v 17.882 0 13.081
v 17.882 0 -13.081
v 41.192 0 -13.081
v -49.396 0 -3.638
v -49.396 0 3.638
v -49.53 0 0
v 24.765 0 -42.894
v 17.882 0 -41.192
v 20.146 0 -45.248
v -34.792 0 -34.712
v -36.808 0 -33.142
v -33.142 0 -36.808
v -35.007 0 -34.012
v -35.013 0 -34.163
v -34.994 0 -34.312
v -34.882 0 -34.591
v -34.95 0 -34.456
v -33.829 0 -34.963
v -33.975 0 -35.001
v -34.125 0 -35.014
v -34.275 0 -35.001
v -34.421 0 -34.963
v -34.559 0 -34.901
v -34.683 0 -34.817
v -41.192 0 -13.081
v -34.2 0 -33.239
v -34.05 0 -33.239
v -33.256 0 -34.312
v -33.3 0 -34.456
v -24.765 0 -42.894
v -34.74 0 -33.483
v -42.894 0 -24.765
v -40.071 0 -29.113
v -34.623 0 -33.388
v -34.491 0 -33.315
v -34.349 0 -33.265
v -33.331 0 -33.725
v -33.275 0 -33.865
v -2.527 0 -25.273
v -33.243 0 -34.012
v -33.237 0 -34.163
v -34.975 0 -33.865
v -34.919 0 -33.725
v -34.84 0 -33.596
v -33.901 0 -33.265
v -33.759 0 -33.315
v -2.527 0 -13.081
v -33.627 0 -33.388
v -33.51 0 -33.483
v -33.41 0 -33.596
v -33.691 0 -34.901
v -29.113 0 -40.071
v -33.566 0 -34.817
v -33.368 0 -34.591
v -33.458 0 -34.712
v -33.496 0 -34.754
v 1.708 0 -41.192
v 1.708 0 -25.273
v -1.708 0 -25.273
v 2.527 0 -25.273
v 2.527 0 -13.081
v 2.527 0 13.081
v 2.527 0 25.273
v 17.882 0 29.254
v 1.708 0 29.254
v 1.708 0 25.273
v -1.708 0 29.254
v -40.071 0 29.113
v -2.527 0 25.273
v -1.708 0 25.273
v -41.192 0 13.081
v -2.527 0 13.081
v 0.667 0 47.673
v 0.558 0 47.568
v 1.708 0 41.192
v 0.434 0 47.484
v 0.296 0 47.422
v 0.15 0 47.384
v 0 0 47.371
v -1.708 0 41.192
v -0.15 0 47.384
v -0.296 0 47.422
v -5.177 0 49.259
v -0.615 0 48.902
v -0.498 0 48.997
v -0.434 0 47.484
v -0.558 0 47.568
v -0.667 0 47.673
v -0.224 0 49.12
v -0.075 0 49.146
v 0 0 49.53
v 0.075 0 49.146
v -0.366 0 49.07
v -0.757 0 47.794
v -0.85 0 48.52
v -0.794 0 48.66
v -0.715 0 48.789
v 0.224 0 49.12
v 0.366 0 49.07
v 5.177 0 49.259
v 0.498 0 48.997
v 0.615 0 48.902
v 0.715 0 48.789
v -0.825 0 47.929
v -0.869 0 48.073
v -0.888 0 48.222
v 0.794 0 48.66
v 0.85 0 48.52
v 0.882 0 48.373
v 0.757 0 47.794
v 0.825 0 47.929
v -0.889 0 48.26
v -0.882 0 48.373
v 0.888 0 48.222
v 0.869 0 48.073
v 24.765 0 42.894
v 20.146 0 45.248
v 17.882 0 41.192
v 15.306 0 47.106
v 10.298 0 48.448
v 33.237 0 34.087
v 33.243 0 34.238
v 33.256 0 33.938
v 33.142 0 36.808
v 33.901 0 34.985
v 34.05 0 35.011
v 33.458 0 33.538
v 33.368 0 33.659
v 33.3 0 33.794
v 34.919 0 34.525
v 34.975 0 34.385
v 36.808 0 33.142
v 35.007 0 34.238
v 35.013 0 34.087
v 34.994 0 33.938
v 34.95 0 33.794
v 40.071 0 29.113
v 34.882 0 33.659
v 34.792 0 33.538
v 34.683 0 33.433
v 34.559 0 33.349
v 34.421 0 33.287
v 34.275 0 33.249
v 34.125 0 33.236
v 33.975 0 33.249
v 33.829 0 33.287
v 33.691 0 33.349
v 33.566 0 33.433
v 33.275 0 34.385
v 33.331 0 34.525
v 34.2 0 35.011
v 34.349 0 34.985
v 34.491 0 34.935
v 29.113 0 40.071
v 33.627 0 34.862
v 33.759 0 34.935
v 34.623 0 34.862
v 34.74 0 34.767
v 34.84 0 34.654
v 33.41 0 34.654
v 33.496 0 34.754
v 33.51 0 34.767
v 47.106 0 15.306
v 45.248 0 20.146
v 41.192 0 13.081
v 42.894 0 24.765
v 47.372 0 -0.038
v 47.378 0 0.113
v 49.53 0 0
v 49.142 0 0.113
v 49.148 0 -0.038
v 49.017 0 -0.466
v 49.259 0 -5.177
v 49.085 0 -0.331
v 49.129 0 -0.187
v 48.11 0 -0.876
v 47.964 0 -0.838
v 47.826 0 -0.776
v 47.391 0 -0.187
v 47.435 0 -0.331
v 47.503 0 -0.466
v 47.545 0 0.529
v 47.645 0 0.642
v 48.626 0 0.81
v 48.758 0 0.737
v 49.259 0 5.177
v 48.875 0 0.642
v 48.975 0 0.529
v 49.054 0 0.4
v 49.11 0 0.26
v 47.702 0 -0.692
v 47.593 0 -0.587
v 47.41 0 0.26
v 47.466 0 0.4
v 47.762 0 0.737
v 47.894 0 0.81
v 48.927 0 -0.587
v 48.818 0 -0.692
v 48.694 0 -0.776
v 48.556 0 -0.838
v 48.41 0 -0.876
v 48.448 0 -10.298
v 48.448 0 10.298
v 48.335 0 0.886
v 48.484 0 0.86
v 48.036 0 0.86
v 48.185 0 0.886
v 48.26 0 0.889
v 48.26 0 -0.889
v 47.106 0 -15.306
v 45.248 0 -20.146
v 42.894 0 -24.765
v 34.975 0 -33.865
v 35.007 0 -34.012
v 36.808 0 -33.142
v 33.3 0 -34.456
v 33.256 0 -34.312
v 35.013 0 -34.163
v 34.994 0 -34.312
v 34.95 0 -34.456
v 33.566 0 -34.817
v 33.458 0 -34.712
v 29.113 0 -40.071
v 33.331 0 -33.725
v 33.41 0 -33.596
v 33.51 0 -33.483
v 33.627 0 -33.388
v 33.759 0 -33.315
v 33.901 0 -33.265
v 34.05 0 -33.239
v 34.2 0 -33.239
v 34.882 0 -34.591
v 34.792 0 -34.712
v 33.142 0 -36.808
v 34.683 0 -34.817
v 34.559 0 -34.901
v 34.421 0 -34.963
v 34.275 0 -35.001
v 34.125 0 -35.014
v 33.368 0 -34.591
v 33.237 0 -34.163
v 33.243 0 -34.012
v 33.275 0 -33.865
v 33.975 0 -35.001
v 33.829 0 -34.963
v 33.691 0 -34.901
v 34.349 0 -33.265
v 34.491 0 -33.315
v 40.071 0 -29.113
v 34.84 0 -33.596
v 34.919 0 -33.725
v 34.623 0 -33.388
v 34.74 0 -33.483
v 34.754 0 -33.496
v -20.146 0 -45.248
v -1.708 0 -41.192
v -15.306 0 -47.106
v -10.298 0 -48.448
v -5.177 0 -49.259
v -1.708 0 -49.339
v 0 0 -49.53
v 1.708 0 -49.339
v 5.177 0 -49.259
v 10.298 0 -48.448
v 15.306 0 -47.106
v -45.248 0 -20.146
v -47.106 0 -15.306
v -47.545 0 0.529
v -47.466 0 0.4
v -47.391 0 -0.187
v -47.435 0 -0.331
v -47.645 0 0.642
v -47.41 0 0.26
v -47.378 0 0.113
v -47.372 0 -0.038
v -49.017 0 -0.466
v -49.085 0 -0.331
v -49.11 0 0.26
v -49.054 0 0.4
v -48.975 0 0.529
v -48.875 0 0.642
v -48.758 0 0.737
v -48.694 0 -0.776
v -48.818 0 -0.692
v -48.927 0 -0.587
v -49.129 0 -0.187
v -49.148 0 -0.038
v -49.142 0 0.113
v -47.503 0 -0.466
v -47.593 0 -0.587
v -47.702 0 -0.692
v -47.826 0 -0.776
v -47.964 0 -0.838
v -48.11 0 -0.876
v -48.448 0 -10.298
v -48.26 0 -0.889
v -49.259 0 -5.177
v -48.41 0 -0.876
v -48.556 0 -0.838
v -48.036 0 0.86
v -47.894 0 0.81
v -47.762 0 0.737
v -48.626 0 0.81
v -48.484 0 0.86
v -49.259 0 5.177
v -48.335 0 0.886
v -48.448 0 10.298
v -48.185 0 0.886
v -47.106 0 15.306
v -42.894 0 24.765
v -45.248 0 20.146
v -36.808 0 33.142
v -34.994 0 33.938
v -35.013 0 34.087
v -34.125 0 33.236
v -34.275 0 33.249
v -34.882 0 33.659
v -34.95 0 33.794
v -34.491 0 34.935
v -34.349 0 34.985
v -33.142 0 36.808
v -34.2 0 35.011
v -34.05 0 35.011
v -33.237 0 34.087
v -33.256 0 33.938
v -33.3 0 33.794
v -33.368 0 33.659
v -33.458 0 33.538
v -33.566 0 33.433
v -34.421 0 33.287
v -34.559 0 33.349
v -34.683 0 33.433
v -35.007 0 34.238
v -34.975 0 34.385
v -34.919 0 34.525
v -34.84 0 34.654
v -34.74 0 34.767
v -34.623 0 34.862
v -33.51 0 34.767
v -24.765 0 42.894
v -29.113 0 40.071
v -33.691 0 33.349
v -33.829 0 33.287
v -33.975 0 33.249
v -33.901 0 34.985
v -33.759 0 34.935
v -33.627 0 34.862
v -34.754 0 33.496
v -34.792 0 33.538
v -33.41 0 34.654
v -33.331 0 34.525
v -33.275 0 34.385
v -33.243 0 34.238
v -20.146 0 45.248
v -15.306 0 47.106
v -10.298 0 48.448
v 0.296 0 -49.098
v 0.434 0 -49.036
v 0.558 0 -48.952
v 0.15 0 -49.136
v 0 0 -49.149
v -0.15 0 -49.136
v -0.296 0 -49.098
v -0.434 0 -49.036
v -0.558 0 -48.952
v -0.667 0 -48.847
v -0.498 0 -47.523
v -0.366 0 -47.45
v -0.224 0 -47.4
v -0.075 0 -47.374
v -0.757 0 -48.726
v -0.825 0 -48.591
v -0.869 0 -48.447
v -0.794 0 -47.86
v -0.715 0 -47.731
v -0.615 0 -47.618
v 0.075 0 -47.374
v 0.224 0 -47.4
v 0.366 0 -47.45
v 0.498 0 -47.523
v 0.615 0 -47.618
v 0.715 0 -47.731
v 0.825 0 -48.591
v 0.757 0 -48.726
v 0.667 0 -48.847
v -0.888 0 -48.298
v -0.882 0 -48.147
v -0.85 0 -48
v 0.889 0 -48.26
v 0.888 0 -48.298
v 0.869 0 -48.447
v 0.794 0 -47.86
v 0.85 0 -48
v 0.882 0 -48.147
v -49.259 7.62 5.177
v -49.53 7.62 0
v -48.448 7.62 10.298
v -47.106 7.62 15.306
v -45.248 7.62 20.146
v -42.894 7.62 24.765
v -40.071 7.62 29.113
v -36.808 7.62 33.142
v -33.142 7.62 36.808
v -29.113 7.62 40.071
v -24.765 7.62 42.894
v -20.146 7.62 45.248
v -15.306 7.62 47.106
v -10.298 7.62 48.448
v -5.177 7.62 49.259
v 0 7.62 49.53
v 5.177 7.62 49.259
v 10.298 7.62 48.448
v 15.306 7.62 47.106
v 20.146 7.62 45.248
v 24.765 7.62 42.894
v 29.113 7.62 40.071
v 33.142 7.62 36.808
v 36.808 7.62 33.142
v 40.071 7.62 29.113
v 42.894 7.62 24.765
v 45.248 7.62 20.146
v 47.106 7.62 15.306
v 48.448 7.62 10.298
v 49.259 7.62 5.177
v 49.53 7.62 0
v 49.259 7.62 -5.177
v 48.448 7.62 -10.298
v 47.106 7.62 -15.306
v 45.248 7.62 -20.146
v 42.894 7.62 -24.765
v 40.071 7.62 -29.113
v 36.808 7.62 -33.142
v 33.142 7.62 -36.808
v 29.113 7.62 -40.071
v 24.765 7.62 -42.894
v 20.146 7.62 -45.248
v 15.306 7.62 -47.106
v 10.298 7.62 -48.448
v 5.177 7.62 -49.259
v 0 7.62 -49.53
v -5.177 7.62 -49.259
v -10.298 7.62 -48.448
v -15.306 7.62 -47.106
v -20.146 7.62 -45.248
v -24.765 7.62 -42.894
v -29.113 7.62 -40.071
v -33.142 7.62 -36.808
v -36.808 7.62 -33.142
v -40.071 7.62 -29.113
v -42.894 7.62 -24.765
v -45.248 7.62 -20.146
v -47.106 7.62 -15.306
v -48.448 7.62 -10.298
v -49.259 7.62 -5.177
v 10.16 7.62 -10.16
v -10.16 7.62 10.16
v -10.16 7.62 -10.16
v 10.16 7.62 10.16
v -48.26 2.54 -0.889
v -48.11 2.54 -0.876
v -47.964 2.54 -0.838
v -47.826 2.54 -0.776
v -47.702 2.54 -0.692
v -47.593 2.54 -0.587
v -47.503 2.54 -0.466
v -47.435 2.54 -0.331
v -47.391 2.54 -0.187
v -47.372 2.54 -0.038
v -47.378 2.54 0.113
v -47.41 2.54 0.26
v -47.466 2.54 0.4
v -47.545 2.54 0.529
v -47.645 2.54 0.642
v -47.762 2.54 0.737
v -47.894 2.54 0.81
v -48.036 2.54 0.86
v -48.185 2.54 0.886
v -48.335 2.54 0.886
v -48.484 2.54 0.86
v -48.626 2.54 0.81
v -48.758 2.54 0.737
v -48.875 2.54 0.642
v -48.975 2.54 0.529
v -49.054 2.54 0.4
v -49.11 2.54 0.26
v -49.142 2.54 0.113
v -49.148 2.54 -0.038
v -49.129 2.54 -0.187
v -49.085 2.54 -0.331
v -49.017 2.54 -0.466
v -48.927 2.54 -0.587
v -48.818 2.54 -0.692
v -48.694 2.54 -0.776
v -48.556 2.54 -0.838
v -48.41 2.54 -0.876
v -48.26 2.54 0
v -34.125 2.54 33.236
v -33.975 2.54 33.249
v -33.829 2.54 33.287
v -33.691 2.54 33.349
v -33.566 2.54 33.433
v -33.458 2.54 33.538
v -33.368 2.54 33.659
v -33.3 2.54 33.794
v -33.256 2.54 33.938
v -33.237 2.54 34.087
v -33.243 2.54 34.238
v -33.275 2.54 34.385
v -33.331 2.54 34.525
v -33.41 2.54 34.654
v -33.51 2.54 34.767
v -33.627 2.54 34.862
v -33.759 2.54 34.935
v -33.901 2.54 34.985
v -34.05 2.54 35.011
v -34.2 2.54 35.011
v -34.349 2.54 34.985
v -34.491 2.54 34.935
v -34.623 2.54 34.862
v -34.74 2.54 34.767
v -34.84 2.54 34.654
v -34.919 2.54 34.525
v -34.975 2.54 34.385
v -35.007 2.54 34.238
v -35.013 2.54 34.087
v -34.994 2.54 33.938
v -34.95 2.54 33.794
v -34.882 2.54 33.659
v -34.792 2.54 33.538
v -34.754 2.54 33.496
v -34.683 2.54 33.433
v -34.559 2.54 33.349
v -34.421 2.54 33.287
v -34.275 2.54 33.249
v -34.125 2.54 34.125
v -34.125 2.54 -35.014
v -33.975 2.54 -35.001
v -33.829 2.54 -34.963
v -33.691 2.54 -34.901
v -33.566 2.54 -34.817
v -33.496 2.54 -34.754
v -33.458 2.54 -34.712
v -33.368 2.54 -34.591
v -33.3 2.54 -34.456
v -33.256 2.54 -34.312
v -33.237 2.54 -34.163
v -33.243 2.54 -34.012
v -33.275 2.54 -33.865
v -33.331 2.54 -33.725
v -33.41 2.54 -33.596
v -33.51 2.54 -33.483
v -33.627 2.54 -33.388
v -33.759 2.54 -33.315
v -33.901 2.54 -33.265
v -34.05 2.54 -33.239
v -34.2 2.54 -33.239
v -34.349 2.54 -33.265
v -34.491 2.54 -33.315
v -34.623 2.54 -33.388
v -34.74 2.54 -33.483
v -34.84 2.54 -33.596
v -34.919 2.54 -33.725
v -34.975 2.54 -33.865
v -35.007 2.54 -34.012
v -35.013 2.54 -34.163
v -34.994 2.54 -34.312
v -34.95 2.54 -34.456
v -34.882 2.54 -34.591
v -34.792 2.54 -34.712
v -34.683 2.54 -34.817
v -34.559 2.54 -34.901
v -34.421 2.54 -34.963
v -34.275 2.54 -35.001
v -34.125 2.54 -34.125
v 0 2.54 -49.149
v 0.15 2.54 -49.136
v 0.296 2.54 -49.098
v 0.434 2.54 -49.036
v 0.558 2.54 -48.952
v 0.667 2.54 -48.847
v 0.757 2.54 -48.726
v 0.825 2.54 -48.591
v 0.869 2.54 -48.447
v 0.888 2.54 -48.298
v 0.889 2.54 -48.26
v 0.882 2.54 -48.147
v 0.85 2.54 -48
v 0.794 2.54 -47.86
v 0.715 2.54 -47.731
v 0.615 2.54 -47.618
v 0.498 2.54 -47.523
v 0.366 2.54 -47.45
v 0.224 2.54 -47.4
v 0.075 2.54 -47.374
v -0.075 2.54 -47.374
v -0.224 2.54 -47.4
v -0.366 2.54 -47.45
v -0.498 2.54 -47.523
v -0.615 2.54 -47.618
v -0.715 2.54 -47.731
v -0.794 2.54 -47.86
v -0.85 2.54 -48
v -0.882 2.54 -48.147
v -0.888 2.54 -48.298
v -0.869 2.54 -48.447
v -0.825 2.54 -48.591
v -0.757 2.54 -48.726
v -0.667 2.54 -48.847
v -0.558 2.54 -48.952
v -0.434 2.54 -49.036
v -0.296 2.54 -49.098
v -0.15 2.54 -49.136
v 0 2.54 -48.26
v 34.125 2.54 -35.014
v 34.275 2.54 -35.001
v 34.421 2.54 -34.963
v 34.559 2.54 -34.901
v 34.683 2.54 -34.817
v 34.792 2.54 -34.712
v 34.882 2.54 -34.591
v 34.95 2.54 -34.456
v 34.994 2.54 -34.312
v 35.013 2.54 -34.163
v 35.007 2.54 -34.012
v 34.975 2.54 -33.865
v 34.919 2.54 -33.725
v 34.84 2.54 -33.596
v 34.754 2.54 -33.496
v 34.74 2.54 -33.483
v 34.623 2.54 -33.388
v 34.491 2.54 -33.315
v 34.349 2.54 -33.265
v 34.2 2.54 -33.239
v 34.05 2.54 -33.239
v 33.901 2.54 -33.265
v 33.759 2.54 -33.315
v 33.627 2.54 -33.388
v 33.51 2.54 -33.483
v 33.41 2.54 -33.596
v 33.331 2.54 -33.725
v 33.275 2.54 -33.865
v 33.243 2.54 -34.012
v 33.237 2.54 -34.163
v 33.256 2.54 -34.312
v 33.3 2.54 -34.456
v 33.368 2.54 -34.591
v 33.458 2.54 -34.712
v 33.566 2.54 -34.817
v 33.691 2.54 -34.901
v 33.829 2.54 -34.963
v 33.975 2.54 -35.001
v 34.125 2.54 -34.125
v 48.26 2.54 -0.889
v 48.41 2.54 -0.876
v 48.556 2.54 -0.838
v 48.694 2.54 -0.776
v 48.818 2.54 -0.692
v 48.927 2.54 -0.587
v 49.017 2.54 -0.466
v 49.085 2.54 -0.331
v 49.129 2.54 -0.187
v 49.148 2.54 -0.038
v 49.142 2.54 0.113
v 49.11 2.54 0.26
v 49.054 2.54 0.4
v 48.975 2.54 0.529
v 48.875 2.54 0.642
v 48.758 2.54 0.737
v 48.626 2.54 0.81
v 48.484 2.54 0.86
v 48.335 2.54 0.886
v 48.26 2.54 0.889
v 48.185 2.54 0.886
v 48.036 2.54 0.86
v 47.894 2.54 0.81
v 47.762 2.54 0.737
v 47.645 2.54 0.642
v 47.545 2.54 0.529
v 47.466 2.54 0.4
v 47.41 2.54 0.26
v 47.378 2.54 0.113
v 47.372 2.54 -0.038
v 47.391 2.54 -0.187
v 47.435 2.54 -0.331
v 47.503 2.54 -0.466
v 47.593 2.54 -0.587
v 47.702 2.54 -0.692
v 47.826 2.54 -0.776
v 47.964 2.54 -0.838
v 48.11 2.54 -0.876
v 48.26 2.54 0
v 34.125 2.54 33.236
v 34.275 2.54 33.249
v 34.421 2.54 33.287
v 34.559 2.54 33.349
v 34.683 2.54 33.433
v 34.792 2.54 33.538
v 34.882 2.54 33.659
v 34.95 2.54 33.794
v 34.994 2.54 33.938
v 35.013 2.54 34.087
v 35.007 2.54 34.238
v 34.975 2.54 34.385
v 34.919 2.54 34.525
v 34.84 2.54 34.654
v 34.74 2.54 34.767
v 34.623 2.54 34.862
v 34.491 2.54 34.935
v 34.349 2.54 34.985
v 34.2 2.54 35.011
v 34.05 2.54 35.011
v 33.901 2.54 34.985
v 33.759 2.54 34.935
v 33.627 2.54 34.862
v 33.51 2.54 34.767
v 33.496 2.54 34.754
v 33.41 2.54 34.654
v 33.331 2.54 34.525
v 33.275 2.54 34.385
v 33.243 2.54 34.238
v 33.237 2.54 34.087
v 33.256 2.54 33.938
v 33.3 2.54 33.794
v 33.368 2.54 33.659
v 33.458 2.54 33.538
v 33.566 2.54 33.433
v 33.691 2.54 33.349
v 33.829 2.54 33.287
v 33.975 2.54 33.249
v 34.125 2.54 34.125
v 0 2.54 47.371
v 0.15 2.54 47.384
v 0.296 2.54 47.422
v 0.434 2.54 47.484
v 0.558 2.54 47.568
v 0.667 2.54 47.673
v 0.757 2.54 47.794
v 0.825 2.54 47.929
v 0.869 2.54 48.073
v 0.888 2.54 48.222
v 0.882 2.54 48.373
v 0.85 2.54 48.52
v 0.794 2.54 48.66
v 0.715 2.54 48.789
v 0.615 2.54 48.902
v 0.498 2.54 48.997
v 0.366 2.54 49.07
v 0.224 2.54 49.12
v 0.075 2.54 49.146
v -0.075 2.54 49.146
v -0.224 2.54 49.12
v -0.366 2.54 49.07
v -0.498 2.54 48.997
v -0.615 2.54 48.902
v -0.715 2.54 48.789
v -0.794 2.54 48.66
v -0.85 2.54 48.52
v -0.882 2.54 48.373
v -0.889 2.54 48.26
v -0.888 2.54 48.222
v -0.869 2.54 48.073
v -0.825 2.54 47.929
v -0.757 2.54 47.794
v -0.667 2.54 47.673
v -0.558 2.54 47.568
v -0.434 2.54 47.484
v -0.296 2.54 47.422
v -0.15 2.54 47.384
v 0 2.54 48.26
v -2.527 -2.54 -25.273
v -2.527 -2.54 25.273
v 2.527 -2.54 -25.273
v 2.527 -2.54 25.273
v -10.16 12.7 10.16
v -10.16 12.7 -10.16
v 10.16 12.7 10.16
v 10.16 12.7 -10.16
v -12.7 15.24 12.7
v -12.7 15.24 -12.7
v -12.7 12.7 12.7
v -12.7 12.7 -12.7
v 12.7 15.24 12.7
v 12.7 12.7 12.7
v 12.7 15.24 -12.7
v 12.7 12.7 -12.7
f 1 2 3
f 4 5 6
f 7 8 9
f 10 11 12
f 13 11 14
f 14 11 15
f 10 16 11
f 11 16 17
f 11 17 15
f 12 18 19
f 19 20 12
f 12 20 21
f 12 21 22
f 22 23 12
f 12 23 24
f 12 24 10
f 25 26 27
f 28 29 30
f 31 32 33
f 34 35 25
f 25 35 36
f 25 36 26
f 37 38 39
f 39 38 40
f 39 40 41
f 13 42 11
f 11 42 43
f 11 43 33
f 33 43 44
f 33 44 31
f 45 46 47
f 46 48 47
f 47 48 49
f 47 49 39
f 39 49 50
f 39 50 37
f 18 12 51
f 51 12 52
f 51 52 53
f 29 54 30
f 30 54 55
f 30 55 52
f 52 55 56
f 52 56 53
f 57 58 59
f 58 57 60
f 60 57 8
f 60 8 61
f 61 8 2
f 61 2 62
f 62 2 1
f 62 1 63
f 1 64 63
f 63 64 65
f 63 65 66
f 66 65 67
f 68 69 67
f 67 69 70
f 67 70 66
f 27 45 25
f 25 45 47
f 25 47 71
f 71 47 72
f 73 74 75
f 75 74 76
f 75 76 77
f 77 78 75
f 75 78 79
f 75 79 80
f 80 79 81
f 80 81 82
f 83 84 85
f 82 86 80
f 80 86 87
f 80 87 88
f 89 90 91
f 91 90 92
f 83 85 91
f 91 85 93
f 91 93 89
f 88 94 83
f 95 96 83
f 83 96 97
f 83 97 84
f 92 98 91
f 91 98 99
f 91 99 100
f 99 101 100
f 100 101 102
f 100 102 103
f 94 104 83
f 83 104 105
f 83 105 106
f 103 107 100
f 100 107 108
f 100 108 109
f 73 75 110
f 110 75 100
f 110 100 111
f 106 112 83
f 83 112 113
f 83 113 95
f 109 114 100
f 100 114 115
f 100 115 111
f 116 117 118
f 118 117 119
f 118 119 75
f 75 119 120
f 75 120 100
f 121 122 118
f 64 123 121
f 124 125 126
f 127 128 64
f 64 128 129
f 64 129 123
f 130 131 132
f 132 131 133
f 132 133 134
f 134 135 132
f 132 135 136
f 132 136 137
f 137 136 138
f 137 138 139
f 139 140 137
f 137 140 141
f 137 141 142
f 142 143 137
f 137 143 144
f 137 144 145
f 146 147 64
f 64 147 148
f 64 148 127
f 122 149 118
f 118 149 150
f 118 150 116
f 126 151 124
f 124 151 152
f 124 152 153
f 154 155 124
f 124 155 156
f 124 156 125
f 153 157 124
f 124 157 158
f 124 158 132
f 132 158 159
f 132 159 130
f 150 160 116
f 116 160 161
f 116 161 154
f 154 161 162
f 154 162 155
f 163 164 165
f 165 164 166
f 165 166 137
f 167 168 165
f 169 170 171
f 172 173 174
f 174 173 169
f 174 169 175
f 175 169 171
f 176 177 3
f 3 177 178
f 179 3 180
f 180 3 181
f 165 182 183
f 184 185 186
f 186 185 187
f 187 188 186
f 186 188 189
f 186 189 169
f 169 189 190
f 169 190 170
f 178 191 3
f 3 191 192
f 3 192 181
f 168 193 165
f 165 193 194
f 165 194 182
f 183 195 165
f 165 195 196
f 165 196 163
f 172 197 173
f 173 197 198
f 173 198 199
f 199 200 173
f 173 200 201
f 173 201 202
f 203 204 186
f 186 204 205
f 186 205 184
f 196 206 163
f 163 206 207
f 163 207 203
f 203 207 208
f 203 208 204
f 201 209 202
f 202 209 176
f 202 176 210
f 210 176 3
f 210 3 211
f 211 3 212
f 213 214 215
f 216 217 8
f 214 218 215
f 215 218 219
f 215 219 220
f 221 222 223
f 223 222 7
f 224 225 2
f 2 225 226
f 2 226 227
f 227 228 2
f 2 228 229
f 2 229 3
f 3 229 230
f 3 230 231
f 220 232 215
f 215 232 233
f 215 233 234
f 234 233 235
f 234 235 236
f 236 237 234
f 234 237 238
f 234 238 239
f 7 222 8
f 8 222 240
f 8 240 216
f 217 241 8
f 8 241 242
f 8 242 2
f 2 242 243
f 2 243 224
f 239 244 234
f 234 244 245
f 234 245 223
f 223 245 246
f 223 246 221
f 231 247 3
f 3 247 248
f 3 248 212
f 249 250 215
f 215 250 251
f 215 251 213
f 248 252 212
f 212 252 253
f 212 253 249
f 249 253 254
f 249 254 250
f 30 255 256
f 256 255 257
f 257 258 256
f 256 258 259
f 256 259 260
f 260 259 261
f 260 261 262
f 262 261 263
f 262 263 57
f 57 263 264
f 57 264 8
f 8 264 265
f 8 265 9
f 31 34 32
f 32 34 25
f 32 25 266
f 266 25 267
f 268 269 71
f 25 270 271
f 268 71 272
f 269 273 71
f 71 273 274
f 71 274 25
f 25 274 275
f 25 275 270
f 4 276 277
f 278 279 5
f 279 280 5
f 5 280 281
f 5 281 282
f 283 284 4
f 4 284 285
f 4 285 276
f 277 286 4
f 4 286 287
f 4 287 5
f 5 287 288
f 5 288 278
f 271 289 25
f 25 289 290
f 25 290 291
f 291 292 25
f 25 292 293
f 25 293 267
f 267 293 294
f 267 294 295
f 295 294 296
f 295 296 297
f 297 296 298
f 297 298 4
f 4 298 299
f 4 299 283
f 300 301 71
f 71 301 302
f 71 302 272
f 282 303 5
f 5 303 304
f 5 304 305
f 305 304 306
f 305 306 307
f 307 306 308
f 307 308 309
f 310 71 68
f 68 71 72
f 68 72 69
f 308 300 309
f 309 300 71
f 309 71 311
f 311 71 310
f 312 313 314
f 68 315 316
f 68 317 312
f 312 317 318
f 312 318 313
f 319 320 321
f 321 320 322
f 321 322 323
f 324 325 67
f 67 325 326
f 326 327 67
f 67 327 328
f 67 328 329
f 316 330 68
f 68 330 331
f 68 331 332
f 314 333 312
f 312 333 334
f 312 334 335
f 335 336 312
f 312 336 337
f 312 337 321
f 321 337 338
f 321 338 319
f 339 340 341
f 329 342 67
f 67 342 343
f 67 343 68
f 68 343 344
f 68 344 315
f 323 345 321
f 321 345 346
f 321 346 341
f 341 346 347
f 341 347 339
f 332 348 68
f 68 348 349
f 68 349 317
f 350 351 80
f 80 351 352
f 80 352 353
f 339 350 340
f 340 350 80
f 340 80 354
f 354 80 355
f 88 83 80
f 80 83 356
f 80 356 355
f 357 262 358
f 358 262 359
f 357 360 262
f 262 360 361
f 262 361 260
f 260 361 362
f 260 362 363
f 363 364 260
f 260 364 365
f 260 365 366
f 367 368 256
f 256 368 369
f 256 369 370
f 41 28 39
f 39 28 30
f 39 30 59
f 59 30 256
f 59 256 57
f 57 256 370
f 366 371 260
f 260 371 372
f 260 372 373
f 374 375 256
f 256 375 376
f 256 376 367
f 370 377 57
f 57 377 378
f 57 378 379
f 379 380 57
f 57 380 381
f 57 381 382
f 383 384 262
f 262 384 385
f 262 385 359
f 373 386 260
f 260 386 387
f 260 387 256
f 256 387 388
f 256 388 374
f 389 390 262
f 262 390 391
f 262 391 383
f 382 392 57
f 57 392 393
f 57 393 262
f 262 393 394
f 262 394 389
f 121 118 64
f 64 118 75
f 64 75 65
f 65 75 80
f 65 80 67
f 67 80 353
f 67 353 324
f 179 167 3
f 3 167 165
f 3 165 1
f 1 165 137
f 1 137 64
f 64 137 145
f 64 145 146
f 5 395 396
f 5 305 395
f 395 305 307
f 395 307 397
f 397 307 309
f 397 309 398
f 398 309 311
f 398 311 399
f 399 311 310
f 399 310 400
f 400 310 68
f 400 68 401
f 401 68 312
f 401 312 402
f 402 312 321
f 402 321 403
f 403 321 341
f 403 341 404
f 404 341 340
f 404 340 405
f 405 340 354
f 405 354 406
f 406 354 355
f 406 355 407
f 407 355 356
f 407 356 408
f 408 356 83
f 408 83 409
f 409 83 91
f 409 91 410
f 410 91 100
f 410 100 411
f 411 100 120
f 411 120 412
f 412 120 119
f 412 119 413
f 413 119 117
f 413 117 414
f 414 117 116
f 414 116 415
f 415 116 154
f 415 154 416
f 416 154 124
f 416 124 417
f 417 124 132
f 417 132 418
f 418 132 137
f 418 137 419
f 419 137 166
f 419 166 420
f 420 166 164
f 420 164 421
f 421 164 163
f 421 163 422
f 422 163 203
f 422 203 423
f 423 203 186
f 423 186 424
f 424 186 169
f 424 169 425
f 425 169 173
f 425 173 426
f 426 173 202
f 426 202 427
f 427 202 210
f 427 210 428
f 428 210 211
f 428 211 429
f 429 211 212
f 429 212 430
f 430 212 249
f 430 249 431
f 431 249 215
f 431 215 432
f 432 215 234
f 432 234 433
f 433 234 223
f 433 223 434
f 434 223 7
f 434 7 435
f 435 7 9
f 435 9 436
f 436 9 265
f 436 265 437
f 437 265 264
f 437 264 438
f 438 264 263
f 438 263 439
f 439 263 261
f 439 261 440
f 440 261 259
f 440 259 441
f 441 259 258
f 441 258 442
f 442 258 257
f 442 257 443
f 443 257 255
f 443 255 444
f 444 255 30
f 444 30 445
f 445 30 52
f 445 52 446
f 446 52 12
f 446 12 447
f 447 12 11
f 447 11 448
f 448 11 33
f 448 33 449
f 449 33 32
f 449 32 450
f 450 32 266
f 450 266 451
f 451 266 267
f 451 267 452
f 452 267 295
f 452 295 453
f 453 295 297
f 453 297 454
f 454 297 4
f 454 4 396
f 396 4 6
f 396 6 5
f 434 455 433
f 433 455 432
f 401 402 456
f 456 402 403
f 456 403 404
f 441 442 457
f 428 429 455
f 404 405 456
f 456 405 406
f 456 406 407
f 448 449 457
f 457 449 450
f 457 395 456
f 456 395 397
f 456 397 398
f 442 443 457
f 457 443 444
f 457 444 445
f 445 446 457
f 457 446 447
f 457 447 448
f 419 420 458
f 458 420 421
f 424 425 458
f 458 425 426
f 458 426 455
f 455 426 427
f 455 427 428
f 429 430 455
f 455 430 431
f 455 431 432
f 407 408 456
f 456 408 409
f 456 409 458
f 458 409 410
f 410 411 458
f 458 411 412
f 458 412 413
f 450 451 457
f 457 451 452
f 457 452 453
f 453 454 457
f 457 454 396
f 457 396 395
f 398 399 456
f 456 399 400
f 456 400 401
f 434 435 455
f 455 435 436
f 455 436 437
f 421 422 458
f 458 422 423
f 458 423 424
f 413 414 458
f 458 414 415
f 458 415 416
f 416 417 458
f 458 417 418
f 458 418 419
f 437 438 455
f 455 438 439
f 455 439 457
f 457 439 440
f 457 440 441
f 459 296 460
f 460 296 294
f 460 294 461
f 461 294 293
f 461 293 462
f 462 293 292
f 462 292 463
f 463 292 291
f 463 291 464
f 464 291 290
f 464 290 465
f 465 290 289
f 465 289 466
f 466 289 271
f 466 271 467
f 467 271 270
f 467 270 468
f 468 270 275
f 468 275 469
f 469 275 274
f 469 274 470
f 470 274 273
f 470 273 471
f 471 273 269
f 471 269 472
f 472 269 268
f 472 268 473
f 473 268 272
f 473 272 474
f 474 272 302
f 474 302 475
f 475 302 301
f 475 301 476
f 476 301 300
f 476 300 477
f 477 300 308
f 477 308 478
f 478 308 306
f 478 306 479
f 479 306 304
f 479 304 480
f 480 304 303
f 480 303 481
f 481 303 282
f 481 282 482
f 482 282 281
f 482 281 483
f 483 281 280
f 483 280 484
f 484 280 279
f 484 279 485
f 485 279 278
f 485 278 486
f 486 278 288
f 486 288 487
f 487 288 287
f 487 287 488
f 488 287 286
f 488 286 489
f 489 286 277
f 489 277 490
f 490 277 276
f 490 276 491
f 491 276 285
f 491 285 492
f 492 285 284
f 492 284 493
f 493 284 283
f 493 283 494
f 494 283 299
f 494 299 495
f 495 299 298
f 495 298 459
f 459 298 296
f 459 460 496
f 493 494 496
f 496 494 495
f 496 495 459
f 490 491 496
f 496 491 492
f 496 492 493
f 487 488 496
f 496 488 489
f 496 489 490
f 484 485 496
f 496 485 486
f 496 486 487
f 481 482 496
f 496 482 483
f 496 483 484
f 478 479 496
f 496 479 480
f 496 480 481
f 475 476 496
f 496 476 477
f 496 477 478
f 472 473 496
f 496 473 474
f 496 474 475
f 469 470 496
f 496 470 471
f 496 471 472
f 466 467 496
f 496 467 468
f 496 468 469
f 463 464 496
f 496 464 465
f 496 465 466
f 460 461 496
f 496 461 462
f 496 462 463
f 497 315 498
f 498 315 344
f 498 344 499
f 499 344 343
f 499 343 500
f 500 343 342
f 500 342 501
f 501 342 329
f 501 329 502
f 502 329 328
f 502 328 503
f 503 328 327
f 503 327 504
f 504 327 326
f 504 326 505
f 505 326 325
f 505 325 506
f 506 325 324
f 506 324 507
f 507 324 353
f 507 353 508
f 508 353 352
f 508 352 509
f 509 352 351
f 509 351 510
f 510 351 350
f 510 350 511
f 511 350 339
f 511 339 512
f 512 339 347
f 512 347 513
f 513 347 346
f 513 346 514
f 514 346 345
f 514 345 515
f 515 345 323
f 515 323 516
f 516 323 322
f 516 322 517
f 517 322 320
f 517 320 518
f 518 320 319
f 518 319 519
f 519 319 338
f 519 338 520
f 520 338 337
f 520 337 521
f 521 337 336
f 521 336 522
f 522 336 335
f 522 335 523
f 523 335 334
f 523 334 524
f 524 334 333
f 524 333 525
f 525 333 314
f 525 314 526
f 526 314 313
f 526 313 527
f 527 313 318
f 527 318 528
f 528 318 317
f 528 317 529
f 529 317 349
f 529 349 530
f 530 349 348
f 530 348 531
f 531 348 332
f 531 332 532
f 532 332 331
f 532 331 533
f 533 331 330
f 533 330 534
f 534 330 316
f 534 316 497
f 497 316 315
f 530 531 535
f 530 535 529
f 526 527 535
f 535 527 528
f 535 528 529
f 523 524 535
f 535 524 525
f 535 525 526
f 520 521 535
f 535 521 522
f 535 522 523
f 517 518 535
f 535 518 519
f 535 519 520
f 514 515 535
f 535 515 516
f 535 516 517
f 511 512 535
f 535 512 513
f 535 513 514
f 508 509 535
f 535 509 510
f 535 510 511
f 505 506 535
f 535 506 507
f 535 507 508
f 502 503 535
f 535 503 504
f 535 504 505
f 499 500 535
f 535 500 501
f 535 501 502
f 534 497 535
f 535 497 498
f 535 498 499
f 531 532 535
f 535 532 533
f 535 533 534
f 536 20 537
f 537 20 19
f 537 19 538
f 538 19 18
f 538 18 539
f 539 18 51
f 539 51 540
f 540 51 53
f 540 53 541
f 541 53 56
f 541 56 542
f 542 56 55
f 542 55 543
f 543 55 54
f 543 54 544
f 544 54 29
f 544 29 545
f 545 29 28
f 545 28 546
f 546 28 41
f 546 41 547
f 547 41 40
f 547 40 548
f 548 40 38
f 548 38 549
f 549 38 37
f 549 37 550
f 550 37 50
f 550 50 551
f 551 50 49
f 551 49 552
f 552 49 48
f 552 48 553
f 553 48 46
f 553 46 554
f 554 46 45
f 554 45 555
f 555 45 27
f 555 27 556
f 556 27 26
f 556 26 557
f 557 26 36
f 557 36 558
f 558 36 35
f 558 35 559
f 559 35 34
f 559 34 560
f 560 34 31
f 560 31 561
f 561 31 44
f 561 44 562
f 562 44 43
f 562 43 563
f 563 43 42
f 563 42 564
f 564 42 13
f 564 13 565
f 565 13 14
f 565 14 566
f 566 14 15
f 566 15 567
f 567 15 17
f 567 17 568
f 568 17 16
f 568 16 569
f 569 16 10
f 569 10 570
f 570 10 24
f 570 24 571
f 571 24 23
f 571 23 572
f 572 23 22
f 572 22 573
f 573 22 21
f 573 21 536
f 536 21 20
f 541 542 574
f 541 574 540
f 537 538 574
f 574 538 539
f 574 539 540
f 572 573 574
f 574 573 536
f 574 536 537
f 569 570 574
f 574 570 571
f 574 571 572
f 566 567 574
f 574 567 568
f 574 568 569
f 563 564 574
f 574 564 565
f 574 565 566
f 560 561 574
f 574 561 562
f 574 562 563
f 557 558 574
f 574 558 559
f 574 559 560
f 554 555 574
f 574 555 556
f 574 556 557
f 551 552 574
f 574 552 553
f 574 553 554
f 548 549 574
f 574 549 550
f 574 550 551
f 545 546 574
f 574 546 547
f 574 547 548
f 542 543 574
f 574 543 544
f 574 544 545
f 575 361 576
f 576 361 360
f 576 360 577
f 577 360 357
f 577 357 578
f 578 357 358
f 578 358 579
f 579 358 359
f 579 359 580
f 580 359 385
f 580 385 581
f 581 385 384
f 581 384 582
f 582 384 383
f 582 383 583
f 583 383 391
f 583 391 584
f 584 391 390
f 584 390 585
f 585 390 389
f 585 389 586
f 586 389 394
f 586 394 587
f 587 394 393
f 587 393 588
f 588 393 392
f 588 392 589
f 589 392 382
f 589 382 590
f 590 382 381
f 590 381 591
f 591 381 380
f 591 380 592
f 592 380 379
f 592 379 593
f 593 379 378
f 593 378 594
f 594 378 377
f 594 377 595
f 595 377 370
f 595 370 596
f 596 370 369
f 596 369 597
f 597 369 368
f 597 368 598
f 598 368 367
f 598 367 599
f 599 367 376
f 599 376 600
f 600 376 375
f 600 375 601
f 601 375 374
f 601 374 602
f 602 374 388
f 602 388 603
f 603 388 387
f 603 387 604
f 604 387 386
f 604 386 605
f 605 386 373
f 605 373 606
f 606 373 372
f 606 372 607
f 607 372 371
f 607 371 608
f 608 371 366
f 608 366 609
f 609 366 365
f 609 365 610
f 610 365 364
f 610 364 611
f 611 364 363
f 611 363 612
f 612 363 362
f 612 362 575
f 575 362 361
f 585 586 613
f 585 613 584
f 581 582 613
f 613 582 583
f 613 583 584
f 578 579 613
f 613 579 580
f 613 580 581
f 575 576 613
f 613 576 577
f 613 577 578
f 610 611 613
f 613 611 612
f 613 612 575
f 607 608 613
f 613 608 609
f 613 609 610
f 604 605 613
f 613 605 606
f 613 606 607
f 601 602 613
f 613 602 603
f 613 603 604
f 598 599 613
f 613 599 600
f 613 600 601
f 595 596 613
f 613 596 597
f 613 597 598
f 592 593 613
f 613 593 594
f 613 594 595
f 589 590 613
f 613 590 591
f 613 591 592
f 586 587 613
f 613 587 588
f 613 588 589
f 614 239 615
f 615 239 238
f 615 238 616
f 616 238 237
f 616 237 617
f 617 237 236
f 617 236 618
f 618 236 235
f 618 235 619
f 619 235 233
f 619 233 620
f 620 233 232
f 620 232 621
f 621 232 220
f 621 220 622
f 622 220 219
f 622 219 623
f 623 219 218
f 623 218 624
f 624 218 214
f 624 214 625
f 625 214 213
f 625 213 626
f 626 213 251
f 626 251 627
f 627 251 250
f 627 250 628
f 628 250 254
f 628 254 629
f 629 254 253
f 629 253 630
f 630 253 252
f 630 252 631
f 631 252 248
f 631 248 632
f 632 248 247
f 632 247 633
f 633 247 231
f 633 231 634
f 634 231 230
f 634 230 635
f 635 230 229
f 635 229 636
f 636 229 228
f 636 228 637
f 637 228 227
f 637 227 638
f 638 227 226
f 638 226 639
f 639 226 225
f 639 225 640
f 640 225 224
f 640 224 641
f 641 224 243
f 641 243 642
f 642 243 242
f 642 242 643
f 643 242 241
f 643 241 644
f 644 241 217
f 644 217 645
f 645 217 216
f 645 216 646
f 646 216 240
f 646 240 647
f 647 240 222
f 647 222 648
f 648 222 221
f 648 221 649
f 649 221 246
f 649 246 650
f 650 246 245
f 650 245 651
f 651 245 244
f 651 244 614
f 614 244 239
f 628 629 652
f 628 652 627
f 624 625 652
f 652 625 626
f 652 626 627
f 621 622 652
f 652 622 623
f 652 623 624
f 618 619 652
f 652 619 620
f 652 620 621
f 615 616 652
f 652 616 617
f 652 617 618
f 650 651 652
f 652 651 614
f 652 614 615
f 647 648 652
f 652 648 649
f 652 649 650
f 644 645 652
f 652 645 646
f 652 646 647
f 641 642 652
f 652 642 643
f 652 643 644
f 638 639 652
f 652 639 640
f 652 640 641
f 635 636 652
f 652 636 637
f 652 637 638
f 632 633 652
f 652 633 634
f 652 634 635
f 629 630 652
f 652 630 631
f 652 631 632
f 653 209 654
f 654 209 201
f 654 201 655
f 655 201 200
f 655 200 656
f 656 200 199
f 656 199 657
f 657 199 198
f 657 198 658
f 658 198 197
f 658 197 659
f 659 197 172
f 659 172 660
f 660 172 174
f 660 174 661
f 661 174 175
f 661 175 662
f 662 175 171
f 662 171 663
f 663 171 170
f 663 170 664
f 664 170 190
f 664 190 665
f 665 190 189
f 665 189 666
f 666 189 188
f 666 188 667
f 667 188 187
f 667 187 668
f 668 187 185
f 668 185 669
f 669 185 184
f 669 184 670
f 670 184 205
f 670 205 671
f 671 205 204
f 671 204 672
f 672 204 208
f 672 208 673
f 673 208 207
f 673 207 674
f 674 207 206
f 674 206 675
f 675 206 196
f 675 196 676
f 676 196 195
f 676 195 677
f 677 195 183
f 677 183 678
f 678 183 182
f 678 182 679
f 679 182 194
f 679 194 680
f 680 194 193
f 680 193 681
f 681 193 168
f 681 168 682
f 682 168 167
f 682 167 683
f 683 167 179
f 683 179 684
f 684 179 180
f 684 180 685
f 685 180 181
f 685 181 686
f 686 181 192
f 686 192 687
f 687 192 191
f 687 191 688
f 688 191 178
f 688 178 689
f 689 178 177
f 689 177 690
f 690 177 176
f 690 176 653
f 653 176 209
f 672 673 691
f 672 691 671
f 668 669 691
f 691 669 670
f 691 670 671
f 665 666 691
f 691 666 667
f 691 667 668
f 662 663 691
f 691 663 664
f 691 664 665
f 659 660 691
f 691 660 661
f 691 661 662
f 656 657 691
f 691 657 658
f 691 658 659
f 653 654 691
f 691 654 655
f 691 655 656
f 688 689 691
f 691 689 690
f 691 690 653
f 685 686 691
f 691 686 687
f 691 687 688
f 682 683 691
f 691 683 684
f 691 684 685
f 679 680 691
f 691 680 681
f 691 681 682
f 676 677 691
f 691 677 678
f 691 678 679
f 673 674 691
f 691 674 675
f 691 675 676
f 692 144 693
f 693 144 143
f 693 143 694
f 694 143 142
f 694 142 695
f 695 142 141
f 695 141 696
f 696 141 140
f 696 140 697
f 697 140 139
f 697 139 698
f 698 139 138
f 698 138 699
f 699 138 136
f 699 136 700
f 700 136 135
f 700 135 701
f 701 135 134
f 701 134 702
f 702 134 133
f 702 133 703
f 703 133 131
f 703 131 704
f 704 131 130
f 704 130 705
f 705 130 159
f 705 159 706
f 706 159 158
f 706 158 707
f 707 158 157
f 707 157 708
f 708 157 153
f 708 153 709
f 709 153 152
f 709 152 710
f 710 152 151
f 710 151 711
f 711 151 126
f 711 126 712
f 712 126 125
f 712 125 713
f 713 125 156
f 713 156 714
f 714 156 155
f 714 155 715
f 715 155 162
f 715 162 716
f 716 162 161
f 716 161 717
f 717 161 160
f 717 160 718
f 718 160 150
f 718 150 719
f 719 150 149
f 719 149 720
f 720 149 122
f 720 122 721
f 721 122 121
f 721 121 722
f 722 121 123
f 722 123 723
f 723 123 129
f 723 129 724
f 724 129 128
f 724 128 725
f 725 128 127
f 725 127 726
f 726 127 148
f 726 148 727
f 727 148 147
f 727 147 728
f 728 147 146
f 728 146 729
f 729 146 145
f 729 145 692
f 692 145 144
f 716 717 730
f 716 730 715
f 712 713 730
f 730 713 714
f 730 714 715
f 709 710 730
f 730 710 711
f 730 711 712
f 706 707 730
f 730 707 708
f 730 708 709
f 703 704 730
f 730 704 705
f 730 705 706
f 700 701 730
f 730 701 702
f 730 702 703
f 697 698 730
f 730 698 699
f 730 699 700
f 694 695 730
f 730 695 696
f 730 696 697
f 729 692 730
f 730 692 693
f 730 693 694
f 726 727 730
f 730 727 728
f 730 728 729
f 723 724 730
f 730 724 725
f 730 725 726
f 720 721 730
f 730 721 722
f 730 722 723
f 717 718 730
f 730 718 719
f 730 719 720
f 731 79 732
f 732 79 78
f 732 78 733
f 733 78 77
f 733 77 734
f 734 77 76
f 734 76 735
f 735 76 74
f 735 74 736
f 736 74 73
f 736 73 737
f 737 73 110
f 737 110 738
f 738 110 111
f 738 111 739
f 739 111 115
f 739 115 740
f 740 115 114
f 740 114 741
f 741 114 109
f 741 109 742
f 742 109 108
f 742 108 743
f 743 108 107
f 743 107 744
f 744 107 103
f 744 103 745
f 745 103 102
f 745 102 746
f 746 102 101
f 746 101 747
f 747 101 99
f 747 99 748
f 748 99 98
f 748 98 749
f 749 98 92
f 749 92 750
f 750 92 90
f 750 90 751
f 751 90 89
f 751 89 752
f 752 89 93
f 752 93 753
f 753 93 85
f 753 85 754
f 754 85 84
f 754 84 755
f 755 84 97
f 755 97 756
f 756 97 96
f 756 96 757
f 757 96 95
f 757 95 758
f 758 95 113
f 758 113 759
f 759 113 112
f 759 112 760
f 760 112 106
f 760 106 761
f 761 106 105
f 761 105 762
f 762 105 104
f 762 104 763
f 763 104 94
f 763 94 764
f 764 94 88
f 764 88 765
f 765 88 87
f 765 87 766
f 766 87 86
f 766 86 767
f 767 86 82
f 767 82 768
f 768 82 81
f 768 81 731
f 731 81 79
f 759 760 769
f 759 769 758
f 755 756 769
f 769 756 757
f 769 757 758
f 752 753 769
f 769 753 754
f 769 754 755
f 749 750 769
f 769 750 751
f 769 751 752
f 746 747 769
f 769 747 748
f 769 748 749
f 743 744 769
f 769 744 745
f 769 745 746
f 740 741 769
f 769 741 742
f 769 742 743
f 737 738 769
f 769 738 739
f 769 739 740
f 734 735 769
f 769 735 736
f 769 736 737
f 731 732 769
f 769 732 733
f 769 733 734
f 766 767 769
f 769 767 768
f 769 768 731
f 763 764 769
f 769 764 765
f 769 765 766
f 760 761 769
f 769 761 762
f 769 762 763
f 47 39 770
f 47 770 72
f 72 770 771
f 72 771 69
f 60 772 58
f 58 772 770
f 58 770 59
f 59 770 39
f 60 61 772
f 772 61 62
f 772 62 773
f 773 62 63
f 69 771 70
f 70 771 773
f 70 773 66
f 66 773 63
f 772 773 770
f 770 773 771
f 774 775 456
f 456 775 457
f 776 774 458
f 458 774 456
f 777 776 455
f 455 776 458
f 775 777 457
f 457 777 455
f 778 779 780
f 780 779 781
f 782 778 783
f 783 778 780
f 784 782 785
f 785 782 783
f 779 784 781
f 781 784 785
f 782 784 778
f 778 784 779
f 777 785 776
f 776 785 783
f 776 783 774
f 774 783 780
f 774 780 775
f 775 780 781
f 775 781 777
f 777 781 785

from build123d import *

# Parameters (mm, degrees)
SKETCH1_R           = 49.53
BOSS_EXTRUDE1_DEPTH = 7.62
SKETCH2_R           = 0.889
CUT_EXTRUDE1_DEPTH  = 2.54
CIRPATTERN1_COUNT   = 8
SKETCH4_W           = 5.0546
SKETCH4_H           = 50.546
BOSS_EXTRUDE3_DEPTH = 2.54
SKETCH5_W           = 20.32
SKETCH5_H           = 20.32
BOSS_EXTRUDE4_DEPTH = 5.08
SKETCH6_W           = 25.4
SKETCH6_H           = 25.4
BOSS_EXTRUDE5_DEPTH = 2.54


with BuildPart() as part:
    # Sketch1 → Boss-Extrude1 (new body)
    with BuildSketch(Plane(origin=(0, 0, 0), x_dir=(1, 0, 0), z_dir=(0, 1, 0))):
        with Locations(Location((0, 0, 0), (0, 0, 90))):
            Circle(SKETCH1_R)
    extrude(amount=BOSS_EXTRUDE1_DEPTH)

    # Sketch2 → Cut-Extrude1 (cut)
    with BuildSketch(Plane.XZ):
        with Locations(Location((-48.26, 0, 0), (0, 0, 270))):
            Circle(SKETCH2_R)
    cut_extrude1 = extrude(amount=-CUT_EXTRUDE1_DEPTH, mode=Mode.SUBTRACT)

    # CirPattern1: Cut-Extrude1 ×8 about axis
    cirpattern1_axis = Axis((0, 0, 0), (0, 1, 0))
    for i in range(1, CIRPATTERN1_COUNT):
        add(cut_extrude1.rotate(cirpattern1_axis, i * 360 / CIRPATTERN1_COUNT), mode=Mode.SUBTRACT)

    # Sketch4 → Boss-Extrude3 (add)
    with BuildSketch(Plane.XZ):
        Rectangle(SKETCH4_W, SKETCH4_H)
    extrude(amount=BOSS_EXTRUDE3_DEPTH)

    # Sketch5 → Boss-Extrude4 (add)
    with BuildSketch(Plane(origin=(0, 7.62, 0), x_dir=(1, 0, 0), z_dir=(0, 1, 0))):
        Rectangle(SKETCH5_W, SKETCH5_H)
    extrude(amount=BOSS_EXTRUDE4_DEPTH)

    # Sketch6 → Boss-Extrude5 (add)
    with BuildSketch(Plane(origin=(0, 12.7, 0), x_dir=(1, 0, 0), z_dir=(0, 1, 0))):
        Rectangle(SKETCH6_W, SKETCH6_H)
    extrude(amount=BOSS_EXTRUDE5_DEPTH)


solid = part.part
